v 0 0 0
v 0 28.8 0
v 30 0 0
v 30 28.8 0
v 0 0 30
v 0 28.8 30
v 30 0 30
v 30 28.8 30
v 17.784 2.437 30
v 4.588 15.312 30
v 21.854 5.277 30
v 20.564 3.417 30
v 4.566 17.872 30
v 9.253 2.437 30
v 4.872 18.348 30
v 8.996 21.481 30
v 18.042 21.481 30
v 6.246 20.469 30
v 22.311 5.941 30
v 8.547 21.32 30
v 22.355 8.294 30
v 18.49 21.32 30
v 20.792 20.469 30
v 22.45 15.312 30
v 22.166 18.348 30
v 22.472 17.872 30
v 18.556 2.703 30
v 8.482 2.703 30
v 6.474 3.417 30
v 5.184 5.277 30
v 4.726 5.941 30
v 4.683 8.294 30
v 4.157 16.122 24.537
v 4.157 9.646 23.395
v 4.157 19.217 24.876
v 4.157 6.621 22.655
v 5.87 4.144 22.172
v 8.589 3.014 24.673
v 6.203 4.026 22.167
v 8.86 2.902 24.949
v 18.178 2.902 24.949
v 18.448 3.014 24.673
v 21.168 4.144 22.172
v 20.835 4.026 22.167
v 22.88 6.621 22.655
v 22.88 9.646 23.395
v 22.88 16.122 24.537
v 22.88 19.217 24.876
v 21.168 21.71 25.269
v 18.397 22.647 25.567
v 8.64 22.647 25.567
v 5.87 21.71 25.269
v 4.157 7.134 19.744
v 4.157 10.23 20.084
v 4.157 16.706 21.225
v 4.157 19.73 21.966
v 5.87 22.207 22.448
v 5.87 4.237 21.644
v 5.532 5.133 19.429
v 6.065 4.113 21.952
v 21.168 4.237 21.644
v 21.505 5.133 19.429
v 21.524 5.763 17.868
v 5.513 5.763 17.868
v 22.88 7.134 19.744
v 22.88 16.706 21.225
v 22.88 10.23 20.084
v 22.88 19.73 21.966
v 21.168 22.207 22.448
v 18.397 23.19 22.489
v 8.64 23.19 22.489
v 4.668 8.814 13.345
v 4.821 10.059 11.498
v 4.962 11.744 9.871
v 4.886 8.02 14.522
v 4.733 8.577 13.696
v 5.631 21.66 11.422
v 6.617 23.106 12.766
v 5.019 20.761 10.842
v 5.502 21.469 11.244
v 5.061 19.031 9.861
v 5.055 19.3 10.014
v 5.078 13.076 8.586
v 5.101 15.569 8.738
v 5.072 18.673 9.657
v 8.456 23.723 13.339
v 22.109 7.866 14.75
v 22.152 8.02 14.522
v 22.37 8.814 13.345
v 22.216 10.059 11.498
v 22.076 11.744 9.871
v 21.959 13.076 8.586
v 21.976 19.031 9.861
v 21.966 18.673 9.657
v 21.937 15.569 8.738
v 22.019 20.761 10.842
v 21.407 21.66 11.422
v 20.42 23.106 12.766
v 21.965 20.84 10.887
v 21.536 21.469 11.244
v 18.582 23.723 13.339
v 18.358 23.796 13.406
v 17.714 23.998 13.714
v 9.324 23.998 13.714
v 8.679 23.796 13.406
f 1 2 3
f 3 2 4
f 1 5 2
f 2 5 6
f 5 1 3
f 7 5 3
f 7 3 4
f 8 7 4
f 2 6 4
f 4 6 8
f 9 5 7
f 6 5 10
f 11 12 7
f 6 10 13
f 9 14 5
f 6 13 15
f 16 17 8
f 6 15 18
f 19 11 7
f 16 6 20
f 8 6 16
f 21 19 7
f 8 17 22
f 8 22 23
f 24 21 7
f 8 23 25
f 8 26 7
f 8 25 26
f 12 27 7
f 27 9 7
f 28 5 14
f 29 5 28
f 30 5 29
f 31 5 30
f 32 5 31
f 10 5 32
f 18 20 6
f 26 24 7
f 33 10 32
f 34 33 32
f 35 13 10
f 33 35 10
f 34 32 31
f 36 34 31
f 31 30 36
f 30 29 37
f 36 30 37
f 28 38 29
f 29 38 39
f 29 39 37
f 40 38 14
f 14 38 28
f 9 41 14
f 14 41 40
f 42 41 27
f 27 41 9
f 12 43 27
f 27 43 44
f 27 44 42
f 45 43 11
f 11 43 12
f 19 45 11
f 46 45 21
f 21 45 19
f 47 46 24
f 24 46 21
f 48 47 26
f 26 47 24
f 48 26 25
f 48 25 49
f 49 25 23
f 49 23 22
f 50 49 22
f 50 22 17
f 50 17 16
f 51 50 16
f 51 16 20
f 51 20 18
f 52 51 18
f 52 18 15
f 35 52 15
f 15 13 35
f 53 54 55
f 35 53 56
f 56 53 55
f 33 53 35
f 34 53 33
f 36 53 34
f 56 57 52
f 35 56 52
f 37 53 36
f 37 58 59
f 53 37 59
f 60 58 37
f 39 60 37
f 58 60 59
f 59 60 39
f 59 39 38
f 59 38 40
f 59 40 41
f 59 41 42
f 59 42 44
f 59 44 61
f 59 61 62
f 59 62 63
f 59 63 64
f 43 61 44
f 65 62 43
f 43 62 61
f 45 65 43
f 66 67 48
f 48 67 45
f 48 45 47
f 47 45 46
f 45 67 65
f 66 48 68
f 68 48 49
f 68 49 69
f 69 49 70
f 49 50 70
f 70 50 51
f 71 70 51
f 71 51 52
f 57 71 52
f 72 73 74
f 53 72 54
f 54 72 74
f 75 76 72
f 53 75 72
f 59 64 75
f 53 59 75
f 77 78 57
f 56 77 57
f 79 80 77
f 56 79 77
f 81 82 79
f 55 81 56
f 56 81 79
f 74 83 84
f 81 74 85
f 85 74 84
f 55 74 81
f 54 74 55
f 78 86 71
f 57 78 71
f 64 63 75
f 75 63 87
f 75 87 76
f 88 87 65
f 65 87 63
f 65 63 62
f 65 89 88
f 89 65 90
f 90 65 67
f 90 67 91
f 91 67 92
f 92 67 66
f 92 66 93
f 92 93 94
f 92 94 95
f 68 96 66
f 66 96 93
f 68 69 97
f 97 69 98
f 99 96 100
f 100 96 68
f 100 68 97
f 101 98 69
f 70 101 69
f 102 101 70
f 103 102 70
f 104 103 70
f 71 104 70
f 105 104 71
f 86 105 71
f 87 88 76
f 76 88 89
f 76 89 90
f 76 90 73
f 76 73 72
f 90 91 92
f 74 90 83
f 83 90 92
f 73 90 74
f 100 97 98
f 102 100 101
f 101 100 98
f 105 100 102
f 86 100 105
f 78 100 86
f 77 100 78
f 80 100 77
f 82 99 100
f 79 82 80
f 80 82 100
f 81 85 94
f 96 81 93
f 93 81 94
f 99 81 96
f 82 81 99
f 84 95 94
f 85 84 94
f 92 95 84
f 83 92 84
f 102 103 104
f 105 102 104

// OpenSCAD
// file: util/finger_mid.scad
include <../../config.scad>
use <finger_base.scad>

rotate([0,-90,0]) fingermid();

//	Middle segment of finger, can be lengthened
module fingermid(length=19, proximalHole=true, distalHole=true)
{
	difference() {
		scale([yScaleFactor,xScaleFactor,zScaleFactor]) {
			fingerbasesolid(length);
		}
		if(proximalHole) {
			translate([0,knucklePadding/2 * xScaleFactor,0]) fingerhardwarecutouts(jointDia, jointThick, knuckleW=knuckleW-knucklePadding, fingerLen=length);
		}
		if(distalHole) {
			translate([length * yScaleFactor,0,0]) mirror([1,0,0]) fingerhardwarecutouts(jointDia, jointThick, knuckleW=knuckleW, fingerLen=length);
		}
	}
}
// file: util/finger_base.scad
include <../../config.scad>

rotate([0,-90,0]) fingerbase();

//	Base segment of finger, can be lengthened
module fingerbase(length=20, proximalHole=true, distalHole=true)
{
	difference() {
		scale([yScaleFactor,xScaleFactor,zScaleFactor]) {
			fingerbasesolid(length);
		}
		if(proximalHole) {
			translate([0,knucklePadding/2 * xScaleFactor,0]) fingerhardwarecutouts(jointDia, jointThick, knuckleW=knuckleW-knucklePadding, fingerLen=length);
		}
		if (distalHole) {
			translate([length * yScaleFactor,0,0]) mirror([1,0,0]) fingerhardwarecutouts(jointDia, jointThick, knuckleW=knuckleW, fingerLen=length);
		}
	}


	
}

module fingerhardwarecutouts(jointDia,jointThick,knuckleW,fingerLen,holeCutoff=100) {
	//slot for flex joint
	translate([7 - (15/jointDia),0,6*zScaleFactor - (1.8/jointThick)]) {
		rotate([90,0,0]) translate([-0.25,0,-knuckleW*xScaleFactor]) cylinder(d=jointDia, h=knuckleW*xScaleFactor, $fn=50);
		translate([-25,(knuckleW*xScaleFactor) / 2,0]) cube([50,knuckleW*xScaleFactor,jointThick], center=true);
	}
	//cubic parts
	translate([-100,0,0]) cube([100,knuckleW*xScaleFactor,100]);
	translate([-13/zScaleFactor,0,0]) rotate([0,45,0]) translate([-50,0,0]) cube([100,knuckleW * xScaleFactor, 10]);

	//channel for string/tendon
	translate([-fingerLen/2 * yScaleFactor, knuckleW/2 * xScaleFactor, 2.3]) rotate([0,90,0]) cylinder(d=2.5, h=holeCutoff, $fn=50);
}

//	base segment of finger, solid
module fingerbasesolid(length=50, cutout=true) {
	difference() {
		//cubic part
		translate([0,0.001 + knucklePadding/2,1]) cube([length, knuckleW - knucklePadding - 0.002, 8]);
	}
	
	//cylindrical-ish part around finger
	intersection() {
		//overly large shape to get the cross section in the XZ plane from
		difference() {
			union() {
				translate([length-4,-5,5]) rotate([-90,0,0]) cylinder(r=8,h=knuckleW + 10);
				translate([0,-5,-5]) cube([length,knuckleW + 10,20]);
			}
			//cutout for the side "guards" of the previous knuckle
			if(cutout) {
				translate([-4,-knuckleW+0.001,5.3]) rotate([-90,0,0]) cylinder(r=11,h=10);
				translate([-4,knuckleW - knucklePadding*(1/xScaleFactor),5.3]) rotate([-90,0,0]) cylinder(r=11,h=10);
			}
		}

		hull() {
			for(i=[-1,1], j=[-1,1]) {
				//angled cylinders to provide the outer shape of the finger
				translate([length/10,i*2.4 + knuckleW/2,j*2.2 + 5]) rotate([i*j*-4,j*86,0]) cylinder(d=6,h=20,center=true);
				translate([length+4, i*2.4 + knuckleW/2, j*2.2 + 5]) rotate([i*j*-4,j*-86,0]) cylinder(d=6,h=20,center=true);
			}
		}
	}
}
// file: util/finger_tip.scad
include <../../config.scad>
use <finger_base.scad>
use <finger_mid.scad>

rotate([0,-90,0]) fingertip_curved_solid(pad=fingerPads);

module fingertip_curved_solid(length=17, pad=true, hole=true) {
//	if (!pad)
//		fingertip(length=length);
//	else {
		render() difference() {
			union() {
				fingermid(length=length+3, proximalHole=true, distalHole=false);
				translate([length*yScaleFactor - 0.5,0,1.6*zScaleFactor]) rotate([0,30,0]) fingertip(length=15, proximalHole=false, cutout=false);
			}
			//hole for string
			if(hole) translate([0,xScaleFactor * knuckleW/2,2]) rotate([0,90,0]) cylinder(d=2.5,h=100, $fn=50);
			//hollow for soft pad
			if(pad) translate([length*yScaleFactor - 0.5,0,1.6*zScaleFactor]) rotate([0,30,0]) fingertip_pad(length=15);
		}
//	}
}

module fingertip_solid(length=15, pad=true) {
	if (!pad)
		fingertip(length=length);
	else {
		render() difference() {
			fingertip(length=length);
			if(pad) fingertip_pad(length);
		}
	}
}

module fingertip_pad(length) {
	difference() {
		fingertip(length,pad=false, proximalHole=false, cutout=false);
		translate([0,-10,-10]) cube([length-7,50,50]);
		assign($fn = 16) difference() {
			translate([0,0.2*xScaleFactor,3.2*zScaleFactor]) cube([length+(3.3*yScaleFactor),xScaleFactor * (knuckleW - knucklePadding),5.75*zScaleFactor]);
			//grooves for attachment of silicone pad:
			translate([(length+(3.3*yScaleFactor))/3*2, 0.2*xScaleFactor, 3.2*zScaleFactor]) cylinder(d=2.5*yScaleFactor,h=5.75*zScaleFactor);
			translate([(length+(3.3*yScaleFactor))/3*2, 0.2*xScaleFactor + (xScaleFactor * (knuckleW - knucklePadding)), 3.2*zScaleFactor]) cylinder(d=2.5*yScaleFactor,h=5.75*zScaleFactor);
			translate([(length+(3.3*yScaleFactor))/3*2, 0.2*xScaleFactor, 3.2*zScaleFactor]) rotate([-90,0,0]) cylinder(d=2*zScaleFactor,h=xScaleFactor * (knuckleW - knucklePadding));
			translate([(length+(3.3*yScaleFactor))/3*2, 0.2*xScaleFactor, 3.2*zScaleFactor + 5.75*zScaleFactor]) rotate([-90,0,0]) cylinder(d=1.25*zScaleFactor,h=xScaleFactor * (knuckleW - knucklePadding));
		}
		//"fingernail":
		translate([0,xScaleFactor * knuckleW/2,0]) {
			rotate([0,60,0]) cylinder(d=8, h=100);
		}
	}
}

//	tip segment of finger, can be lengthened
module fingertip(length=15, proximalHole=true, cutout=true)
{
	intersection() {
		difference() {
			scale([yScaleFactor,xScaleFactor,zScaleFactor]) {
				fingerbasesolid(length,cutout);
			}
			if(proximalHole) {
				translate([0,knucklePadding/2 * xScaleFactor,0]) fingerhardwarecutouts(jointDia, jointThick, knuckleW=knuckleW-knucklePadding, fingerLen=length, holeCutoff=(length-0.5)*2);
				translate([(length - 5) * yScaleFactor,(knuckleW/2) * xScaleFactor,0])
					rotate([0,30,0]) translate([0,0,2]) cylinder(d=2.5, h=100, $fn=50);
			}
		}
		translate([(length-10)*xScaleFactor,0,21*zScaleFactor]) rotate([-90,0,0]) cylinder(d=70, h=100, center=true);
	}
}
// file: ../config.scad
/**
 * Configuration settings for Flexy Beast, required to generate correctly sized STLs of the printed parts. See the Configuration File Assembly instructions to set this up.
 * @id config_file
 * @name Configuration File
 * @category Prerequisites!
 * @step Open config.scad in your favorite text editor.
 * @step As per the normal Cyborg Beast instructions, measure the width of the knuckles in the non-affected hand and convert to millimeters.
 * @step Add 5 to that result and then divide by 55.
 * @step Replace the x-, y-, and zScaleFactor variables in config.scad with that number.
 * @step If desired, adjust the proportions of the hand by changing those variables individually. xScaleFactor controls the width of the hand, yScaleFactor controls the length, and zScaleFactor controls the height.
 * @step Open assembly.scad in OpenSCAD to check that the flexy joint holes are not too large for the hand (should only be necessary for small children). If necessary, reduce the jointDia and jointThick variables. jointDia=5 and jointThick=2 is a good amount for smaller hands.
 * @step Set the fingerPads variable to true or false depending on whether you want to cast silicone finger pads for improved grip.
 * @step Open palm.scad, finger_base.scad, finger_tip.scad, and thumb_tip.scad in OpenSCAD, render each part (F6), and export as STL, then print. Suggested print settings are 0.2mm or smaller layer height, 3 perimeters, and 25% rectilinear or hexagonal infill.
 */

knuckleR = 4.85;
knucklePadding = 0.5;
knuckleW = 9.5;
wristH = 10;
palmH = 20;
palmW = 64;
th = 3;
fn = 32;

//flexy joint parameters
jointDia = 7;
jointThick = 4;

//finger settings
fingerPads = true; //whether or not to hollow the finger tips slightly for molding pads
padPositive = false; //if false (default), finger_tip_mold.scad renders a mold to make silicone finger pads; if true, renders a printable flexible finger pad
fingerLength = 1; //multiply the length of all fingers by this amount
thumbProp = 0.8; //proportion of thumb length relative to other fingers (note that the thumb is a segment shorter than the other fingers already)
indexProp = 0.8; //proportion of index finger length relative to other fingers
middleProp = 1; //proportion of middle finger length relative to other fingers
ringProp = 0.8; //proportion of ring finger length relative to other fingers
pinkyProp = 0.7; //proportion of pinky finger length relative to other fingers

//misc settings
thermoform = true; //whether or not to generate a thermoformable mesh for the palm

//desired scale factor for hand based on the standard Cyborg Beast/Robohand sizing guide
xScaleFactor = 1.5; // [1.05:1.60]
yScaleFactor = 1.5; // [1.05:1.60]
zScaleFactor = 1.6; // [1.05:1.60]
// main file
include <../config.scad>
use <util/finger_tip.scad>

fingertip_mold();

/**
 * Mold for casting silicone finger tip grip - rendered from parts/finger_tip_mold.scad
 * @id finger_tip_mold
 * @name Finger Tip Mold
 * @category Printed
 */

module fingertip_mold(length=15) {
	if(!padPositive)
		difference() {
			scale([xScaleFactor,zScaleFactor,yScaleFactor]) {
				cube([knuckleW + knucklePadding + 10, 18, 20]);
			}
			scale([1.05,1.05,1.05]) translate([knuckleW + knucklePadding + 10,2,35]) rotate([0,80,90]) fingertip(length, proximalHole=false, cutout=false);
		}
	else rotate([0,-90,0]) fingertip_pad(length);
}
